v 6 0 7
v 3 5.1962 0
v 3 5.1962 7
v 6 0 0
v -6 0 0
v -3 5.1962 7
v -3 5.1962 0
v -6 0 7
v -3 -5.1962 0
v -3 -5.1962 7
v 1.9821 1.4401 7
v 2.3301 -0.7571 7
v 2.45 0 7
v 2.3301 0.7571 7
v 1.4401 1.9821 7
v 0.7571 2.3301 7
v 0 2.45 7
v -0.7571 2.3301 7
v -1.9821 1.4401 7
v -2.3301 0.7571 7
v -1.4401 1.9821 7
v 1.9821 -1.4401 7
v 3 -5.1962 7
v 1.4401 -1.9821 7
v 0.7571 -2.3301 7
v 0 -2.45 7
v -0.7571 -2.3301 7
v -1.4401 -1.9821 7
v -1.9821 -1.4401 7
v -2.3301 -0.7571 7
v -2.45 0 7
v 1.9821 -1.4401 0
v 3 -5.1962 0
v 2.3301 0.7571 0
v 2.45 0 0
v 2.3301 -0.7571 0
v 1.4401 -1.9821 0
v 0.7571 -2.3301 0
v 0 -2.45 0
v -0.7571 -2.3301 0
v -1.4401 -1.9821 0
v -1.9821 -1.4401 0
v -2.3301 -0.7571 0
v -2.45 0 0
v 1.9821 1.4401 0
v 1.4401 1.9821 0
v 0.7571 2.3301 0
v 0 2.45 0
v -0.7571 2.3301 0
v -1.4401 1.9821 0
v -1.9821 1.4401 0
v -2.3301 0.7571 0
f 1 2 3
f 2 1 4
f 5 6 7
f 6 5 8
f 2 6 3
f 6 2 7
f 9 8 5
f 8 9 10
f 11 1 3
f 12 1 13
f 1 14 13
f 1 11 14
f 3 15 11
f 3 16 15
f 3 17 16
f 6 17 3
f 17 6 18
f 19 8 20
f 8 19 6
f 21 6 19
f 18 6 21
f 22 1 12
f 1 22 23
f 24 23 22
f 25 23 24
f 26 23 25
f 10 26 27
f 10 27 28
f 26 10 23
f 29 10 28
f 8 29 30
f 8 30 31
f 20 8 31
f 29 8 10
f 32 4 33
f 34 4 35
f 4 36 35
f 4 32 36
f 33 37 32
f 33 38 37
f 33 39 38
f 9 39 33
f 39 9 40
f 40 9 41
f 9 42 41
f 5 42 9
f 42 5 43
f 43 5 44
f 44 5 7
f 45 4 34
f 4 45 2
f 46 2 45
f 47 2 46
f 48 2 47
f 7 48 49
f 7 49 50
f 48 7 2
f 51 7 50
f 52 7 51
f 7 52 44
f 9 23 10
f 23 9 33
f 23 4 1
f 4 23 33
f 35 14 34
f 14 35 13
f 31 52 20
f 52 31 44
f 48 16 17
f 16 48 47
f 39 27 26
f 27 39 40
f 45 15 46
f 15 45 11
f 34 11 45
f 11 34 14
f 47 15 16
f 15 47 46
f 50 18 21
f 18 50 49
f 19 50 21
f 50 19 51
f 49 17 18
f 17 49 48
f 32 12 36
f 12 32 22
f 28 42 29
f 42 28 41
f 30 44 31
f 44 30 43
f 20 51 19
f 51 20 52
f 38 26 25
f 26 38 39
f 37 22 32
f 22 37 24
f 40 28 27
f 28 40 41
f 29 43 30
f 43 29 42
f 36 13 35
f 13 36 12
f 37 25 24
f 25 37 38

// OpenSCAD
difference() {
    cylinder($fn = 6, d = 12, h = 7);
    cylinder($fn = 20, d = 4.9, h = 7);
}

    
